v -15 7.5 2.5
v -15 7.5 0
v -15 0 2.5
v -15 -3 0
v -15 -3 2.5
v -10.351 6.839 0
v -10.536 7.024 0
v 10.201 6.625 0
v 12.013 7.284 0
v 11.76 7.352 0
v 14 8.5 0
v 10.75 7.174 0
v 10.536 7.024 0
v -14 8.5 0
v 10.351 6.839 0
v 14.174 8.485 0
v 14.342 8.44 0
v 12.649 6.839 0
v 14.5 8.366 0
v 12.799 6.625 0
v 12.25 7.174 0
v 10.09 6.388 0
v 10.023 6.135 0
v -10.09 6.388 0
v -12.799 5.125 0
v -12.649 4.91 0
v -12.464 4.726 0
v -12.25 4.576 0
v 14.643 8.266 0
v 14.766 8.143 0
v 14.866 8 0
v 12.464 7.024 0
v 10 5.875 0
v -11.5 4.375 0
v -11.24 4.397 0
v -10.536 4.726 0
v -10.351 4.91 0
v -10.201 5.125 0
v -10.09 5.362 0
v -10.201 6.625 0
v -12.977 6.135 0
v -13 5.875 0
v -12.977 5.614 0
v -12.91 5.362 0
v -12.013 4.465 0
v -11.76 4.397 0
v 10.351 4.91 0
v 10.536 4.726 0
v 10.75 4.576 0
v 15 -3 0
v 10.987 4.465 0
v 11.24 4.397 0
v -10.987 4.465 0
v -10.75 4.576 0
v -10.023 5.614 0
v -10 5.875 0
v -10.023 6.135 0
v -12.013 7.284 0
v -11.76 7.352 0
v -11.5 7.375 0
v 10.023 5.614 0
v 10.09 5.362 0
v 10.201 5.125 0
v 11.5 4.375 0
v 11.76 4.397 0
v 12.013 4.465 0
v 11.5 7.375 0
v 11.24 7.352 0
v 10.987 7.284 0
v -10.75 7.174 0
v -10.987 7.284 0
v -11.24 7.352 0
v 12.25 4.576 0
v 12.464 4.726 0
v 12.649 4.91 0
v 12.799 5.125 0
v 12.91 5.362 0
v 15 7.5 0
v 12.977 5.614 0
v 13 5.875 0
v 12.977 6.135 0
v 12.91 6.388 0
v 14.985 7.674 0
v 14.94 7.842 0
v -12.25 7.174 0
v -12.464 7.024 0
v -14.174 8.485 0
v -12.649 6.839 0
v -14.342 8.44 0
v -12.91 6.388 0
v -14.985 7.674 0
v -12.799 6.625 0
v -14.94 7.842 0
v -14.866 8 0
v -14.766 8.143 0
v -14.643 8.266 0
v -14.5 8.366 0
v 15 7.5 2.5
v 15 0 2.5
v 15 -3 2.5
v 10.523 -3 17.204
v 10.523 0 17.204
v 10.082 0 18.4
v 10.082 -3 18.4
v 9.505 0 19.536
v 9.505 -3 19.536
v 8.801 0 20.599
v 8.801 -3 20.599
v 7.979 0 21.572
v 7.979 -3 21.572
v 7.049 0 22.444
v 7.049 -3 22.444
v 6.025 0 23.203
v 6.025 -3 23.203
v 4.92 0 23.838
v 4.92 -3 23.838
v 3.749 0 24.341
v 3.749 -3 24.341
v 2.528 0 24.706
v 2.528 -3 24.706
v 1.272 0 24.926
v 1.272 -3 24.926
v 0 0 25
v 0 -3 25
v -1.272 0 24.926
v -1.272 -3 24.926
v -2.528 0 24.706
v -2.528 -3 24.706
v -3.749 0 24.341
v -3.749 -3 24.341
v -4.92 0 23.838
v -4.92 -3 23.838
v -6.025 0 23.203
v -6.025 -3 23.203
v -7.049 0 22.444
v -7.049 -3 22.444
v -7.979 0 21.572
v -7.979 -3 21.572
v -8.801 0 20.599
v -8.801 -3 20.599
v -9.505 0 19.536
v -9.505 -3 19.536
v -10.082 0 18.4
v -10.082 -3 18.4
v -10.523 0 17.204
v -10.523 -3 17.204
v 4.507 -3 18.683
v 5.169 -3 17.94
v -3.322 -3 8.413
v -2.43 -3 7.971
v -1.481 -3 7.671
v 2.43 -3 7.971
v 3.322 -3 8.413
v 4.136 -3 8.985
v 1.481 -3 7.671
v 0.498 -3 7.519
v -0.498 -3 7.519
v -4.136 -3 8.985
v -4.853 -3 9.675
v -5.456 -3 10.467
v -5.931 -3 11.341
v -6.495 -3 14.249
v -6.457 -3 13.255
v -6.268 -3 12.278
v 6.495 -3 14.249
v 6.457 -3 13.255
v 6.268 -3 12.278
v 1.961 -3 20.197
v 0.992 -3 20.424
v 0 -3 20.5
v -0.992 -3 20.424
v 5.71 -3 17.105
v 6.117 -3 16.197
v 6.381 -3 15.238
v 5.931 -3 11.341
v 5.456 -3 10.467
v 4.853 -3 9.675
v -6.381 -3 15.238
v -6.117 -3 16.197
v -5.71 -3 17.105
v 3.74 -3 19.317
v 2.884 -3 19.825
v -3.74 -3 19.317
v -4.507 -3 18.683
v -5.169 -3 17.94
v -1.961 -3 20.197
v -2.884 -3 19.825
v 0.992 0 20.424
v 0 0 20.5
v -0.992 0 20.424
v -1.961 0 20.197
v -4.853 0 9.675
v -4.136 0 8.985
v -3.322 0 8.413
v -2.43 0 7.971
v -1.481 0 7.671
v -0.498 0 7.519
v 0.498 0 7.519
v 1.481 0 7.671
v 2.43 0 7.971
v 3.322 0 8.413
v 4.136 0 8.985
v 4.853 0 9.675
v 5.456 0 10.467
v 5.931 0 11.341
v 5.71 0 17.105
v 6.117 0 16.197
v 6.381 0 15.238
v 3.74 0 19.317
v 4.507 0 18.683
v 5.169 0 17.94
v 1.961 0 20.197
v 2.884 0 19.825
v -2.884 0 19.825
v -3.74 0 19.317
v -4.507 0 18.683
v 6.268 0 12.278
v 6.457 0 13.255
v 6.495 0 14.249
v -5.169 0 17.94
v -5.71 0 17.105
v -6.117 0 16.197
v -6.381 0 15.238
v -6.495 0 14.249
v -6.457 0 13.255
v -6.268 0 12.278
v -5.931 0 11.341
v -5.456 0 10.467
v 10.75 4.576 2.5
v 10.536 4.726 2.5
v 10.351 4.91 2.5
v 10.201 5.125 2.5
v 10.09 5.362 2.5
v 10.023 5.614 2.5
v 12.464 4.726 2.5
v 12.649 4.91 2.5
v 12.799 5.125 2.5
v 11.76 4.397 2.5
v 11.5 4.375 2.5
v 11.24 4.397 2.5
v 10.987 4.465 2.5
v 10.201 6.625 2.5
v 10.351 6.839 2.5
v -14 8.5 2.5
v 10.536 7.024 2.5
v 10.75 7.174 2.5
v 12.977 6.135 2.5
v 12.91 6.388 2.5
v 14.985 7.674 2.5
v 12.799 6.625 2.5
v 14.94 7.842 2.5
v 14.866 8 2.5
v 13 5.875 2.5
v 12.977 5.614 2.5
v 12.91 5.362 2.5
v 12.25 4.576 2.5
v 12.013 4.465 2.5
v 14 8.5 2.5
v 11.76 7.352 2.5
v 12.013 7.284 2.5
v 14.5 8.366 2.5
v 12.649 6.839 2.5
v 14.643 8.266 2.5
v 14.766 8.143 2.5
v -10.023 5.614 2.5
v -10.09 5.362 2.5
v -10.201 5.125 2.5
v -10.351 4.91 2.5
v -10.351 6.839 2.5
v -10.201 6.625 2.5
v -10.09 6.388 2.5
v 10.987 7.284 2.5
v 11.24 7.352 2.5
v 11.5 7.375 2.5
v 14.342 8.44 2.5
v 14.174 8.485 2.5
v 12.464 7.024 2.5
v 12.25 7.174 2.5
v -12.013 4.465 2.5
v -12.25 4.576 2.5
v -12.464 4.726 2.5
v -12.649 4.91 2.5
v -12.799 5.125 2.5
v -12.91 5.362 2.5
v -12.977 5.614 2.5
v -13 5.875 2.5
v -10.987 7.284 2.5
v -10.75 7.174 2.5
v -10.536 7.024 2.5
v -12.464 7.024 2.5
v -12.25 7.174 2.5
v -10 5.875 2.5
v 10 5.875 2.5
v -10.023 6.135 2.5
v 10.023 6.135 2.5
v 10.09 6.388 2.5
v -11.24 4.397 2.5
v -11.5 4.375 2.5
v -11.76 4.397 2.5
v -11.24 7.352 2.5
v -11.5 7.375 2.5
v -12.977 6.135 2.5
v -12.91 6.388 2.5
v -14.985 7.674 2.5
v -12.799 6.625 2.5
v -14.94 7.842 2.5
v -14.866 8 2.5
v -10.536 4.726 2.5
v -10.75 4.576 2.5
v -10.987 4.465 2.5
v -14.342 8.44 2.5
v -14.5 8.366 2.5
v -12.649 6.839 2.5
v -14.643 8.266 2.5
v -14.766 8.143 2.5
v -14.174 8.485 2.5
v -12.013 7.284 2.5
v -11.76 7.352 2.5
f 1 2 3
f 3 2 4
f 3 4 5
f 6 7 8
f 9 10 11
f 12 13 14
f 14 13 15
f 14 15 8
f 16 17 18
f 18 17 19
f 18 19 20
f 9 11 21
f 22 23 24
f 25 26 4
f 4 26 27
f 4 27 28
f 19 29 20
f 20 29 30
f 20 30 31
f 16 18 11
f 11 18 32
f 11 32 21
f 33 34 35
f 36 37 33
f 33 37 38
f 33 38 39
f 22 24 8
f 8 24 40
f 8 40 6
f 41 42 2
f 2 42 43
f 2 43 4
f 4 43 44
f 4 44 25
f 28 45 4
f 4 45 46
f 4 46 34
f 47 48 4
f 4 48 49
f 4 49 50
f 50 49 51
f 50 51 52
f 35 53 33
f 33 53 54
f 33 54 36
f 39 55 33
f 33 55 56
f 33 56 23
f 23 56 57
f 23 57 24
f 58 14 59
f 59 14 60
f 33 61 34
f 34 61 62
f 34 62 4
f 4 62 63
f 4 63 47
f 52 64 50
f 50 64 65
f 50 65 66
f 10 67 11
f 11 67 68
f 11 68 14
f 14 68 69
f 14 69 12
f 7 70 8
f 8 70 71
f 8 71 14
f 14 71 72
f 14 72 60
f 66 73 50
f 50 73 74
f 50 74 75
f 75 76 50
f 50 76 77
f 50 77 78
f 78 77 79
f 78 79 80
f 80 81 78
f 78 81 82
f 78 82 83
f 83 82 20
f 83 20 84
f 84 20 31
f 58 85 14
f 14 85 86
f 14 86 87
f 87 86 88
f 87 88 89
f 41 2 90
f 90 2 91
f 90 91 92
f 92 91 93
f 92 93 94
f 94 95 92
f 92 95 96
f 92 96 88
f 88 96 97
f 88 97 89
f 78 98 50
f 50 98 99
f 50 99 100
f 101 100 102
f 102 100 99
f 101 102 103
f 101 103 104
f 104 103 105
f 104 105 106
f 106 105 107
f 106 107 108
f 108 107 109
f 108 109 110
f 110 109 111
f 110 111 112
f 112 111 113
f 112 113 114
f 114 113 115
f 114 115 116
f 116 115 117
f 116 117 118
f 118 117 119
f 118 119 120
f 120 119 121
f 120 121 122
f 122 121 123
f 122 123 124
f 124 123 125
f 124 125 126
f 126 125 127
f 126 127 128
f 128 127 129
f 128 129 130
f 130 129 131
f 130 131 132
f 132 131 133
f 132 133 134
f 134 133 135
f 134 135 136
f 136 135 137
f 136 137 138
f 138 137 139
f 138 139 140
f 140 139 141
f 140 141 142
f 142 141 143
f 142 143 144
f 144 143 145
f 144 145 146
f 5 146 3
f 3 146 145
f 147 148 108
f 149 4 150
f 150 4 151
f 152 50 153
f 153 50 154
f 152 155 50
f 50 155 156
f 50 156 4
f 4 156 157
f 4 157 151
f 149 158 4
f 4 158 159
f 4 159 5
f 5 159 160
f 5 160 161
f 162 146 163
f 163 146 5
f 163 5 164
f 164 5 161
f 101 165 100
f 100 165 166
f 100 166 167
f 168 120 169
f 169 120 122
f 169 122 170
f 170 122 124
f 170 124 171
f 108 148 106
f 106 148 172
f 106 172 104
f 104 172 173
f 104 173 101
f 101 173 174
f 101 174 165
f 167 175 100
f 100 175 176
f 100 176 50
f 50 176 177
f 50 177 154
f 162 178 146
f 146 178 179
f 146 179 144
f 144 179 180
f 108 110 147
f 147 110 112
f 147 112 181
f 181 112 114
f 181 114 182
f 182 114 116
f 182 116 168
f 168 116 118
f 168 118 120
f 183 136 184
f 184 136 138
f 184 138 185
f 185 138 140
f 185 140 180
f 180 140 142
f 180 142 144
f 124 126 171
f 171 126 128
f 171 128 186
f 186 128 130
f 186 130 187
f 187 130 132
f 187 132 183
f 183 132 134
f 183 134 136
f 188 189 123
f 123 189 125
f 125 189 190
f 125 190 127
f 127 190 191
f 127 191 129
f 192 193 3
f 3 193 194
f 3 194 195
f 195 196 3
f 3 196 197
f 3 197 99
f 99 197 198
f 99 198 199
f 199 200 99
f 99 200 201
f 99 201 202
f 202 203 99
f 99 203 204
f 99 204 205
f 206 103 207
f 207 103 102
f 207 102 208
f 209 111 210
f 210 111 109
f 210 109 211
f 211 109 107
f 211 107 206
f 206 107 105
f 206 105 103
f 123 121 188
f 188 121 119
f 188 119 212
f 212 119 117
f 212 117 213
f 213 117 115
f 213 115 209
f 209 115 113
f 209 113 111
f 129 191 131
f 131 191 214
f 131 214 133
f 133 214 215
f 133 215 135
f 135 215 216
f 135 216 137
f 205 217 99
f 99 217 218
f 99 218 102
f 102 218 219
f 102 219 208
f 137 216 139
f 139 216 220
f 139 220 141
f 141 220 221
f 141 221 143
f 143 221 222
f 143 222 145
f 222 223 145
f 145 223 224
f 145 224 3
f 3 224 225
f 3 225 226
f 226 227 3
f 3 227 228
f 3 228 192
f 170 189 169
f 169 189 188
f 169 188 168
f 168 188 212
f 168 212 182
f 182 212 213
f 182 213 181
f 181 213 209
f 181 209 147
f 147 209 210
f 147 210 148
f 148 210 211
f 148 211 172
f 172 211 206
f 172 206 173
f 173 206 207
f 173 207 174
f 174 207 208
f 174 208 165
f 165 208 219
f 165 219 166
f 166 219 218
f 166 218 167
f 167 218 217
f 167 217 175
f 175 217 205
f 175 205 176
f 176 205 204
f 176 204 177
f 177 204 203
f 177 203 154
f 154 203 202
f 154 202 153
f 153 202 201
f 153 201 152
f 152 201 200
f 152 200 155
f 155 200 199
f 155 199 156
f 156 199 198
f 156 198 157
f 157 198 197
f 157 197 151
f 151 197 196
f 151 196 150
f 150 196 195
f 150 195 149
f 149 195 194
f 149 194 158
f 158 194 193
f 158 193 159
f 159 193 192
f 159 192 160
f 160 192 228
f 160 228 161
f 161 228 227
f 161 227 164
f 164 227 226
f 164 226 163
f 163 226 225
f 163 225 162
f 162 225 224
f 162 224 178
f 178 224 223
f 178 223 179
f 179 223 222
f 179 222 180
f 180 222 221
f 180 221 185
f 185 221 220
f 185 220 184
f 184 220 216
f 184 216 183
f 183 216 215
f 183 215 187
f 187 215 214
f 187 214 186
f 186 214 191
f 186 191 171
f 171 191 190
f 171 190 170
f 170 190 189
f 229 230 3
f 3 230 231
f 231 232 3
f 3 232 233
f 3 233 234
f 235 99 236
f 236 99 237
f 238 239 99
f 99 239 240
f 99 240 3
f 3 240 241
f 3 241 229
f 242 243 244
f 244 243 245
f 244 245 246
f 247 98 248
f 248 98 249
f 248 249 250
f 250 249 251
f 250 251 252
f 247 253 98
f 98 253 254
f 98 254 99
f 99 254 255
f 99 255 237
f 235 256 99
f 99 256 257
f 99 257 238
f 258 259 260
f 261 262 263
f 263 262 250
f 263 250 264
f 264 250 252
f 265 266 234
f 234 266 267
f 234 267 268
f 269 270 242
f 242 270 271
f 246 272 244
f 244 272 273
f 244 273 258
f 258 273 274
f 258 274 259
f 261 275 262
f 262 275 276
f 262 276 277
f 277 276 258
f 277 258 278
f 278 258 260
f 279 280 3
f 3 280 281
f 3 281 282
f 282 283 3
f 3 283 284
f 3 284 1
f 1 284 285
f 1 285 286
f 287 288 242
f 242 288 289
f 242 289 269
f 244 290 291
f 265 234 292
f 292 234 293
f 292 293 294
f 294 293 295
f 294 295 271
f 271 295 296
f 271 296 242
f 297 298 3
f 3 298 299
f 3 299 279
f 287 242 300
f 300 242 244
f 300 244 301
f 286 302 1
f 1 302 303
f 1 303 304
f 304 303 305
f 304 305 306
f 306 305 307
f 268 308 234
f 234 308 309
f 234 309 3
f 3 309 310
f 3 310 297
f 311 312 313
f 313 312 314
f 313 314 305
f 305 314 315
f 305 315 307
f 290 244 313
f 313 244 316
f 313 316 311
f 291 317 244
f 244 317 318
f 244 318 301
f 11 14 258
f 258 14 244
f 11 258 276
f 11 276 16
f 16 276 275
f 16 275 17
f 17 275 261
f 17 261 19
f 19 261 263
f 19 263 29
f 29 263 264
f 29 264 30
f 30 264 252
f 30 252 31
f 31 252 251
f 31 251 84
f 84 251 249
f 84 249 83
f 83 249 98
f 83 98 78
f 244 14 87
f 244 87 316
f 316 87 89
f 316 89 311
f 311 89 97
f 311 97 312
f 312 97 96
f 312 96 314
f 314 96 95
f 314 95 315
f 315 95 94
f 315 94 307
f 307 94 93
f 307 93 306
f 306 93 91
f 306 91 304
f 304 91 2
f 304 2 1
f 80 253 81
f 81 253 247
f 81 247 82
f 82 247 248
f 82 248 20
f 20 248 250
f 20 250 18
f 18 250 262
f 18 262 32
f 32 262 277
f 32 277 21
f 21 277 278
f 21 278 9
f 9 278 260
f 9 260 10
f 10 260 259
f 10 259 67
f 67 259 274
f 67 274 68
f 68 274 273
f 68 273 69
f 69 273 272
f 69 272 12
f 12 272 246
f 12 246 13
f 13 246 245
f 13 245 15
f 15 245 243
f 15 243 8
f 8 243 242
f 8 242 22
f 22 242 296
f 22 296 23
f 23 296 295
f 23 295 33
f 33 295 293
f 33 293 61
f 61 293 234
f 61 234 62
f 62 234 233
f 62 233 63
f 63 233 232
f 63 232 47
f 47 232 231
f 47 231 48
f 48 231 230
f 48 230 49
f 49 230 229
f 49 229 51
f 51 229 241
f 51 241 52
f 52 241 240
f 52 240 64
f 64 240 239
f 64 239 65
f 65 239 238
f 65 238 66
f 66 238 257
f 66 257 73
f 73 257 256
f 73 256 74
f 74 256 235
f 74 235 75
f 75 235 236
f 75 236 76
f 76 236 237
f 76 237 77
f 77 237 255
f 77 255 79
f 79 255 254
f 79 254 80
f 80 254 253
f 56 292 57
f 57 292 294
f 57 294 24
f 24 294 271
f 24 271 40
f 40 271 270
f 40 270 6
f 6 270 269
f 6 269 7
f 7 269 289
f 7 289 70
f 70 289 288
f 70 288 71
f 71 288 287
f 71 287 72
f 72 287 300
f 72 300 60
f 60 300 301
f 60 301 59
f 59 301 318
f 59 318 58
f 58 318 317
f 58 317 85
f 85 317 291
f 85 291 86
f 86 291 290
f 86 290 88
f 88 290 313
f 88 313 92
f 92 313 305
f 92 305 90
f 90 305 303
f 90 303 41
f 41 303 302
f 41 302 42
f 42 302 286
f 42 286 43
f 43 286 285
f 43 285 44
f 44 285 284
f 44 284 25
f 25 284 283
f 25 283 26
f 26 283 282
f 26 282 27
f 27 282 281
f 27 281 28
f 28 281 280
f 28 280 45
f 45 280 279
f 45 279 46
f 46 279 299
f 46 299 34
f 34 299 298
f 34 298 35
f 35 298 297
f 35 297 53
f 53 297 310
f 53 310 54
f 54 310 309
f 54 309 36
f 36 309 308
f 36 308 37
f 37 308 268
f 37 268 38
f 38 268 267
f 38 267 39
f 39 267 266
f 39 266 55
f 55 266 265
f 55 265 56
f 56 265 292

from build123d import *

# Parameters (mm, degrees)
SKETCH1_R           = 6.5
BOSS_EXTRUDE1_DEPTH = 3
SKETCH2_W           = 30
SKETCH2_H           = 2.5
BOSS_EXTRUDE2_DEPTH = 8.5
FILLET1_R           = 1
SKETCH3_R           = 1.5
CUT_EXTRUDE1_DEPTH  = 8.5


with BuildPart() as part:
    # Sketch1 → Boss-Extrude1 (new body)
    with BuildSketch(Plane(origin=(0, 0, 0), x_dir=(1, 0, 0), z_dir=(0, 1, 0))):
        with BuildLine():
            Line((-15, 0), (15, 0))
            Line((15, 0), (15, -2.5))
            Line((15, -2.5), (10.523048028, -17.203975688))
            ThreePointArc((10.523048028, -17.203975688), (0, -25), (-10.523048028, -17.203975688))
            Line((-10.523048028, -17.203975688), (-15, -2.5))
            Line((-15, -2.5), (-15, 0))
        make_face()
        with Locations(Location((0, -14, 0), (0, 0, 270))):
            Circle(SKETCH1_R, mode=Mode.SUBTRACT)
    extrude(amount=-BOSS_EXTRUDE1_DEPTH)

    # Sketch2 → Boss-Extrude2 (add)
    with BuildSketch(Plane(origin=(0, 0, 0), x_dir=(1, 0, 0), z_dir=(0, 1, 0))):
        with Locations((0, -1.25)):
            Rectangle(SKETCH2_W, SKETCH2_H)
    extrude(amount=BOSS_EXTRUDE2_DEPTH)

    # Fillet1
    fillet1_edges = [part.edges().sort_by_distance(p)[0] for p in [
        (-15, 8.5, 1.25),
        (15, 8.5, 1.25),
    ]]
    fillet(fillet1_edges, radius=FILLET1_R)

    # Sketch3 → Cut-Extrude1 (cut)
    with BuildSketch(Plane.XY.offset(2.5)):
        with Locations((11.5, 5.874642398)):
            Circle(SKETCH3_R)
    cut_extrude1 = extrude(amount=-CUT_EXTRUDE1_DEPTH, mode=Mode.SUBTRACT)

    # Mirror1: Cut-Extrude1 across plane
    add(cut_extrude1.mirror(Plane(origin=(0, 0, 0), x_dir=(0, 0, 1), z_dir=(1, 0, 0))), mode=Mode.SUBTRACT)


solid = part.part
